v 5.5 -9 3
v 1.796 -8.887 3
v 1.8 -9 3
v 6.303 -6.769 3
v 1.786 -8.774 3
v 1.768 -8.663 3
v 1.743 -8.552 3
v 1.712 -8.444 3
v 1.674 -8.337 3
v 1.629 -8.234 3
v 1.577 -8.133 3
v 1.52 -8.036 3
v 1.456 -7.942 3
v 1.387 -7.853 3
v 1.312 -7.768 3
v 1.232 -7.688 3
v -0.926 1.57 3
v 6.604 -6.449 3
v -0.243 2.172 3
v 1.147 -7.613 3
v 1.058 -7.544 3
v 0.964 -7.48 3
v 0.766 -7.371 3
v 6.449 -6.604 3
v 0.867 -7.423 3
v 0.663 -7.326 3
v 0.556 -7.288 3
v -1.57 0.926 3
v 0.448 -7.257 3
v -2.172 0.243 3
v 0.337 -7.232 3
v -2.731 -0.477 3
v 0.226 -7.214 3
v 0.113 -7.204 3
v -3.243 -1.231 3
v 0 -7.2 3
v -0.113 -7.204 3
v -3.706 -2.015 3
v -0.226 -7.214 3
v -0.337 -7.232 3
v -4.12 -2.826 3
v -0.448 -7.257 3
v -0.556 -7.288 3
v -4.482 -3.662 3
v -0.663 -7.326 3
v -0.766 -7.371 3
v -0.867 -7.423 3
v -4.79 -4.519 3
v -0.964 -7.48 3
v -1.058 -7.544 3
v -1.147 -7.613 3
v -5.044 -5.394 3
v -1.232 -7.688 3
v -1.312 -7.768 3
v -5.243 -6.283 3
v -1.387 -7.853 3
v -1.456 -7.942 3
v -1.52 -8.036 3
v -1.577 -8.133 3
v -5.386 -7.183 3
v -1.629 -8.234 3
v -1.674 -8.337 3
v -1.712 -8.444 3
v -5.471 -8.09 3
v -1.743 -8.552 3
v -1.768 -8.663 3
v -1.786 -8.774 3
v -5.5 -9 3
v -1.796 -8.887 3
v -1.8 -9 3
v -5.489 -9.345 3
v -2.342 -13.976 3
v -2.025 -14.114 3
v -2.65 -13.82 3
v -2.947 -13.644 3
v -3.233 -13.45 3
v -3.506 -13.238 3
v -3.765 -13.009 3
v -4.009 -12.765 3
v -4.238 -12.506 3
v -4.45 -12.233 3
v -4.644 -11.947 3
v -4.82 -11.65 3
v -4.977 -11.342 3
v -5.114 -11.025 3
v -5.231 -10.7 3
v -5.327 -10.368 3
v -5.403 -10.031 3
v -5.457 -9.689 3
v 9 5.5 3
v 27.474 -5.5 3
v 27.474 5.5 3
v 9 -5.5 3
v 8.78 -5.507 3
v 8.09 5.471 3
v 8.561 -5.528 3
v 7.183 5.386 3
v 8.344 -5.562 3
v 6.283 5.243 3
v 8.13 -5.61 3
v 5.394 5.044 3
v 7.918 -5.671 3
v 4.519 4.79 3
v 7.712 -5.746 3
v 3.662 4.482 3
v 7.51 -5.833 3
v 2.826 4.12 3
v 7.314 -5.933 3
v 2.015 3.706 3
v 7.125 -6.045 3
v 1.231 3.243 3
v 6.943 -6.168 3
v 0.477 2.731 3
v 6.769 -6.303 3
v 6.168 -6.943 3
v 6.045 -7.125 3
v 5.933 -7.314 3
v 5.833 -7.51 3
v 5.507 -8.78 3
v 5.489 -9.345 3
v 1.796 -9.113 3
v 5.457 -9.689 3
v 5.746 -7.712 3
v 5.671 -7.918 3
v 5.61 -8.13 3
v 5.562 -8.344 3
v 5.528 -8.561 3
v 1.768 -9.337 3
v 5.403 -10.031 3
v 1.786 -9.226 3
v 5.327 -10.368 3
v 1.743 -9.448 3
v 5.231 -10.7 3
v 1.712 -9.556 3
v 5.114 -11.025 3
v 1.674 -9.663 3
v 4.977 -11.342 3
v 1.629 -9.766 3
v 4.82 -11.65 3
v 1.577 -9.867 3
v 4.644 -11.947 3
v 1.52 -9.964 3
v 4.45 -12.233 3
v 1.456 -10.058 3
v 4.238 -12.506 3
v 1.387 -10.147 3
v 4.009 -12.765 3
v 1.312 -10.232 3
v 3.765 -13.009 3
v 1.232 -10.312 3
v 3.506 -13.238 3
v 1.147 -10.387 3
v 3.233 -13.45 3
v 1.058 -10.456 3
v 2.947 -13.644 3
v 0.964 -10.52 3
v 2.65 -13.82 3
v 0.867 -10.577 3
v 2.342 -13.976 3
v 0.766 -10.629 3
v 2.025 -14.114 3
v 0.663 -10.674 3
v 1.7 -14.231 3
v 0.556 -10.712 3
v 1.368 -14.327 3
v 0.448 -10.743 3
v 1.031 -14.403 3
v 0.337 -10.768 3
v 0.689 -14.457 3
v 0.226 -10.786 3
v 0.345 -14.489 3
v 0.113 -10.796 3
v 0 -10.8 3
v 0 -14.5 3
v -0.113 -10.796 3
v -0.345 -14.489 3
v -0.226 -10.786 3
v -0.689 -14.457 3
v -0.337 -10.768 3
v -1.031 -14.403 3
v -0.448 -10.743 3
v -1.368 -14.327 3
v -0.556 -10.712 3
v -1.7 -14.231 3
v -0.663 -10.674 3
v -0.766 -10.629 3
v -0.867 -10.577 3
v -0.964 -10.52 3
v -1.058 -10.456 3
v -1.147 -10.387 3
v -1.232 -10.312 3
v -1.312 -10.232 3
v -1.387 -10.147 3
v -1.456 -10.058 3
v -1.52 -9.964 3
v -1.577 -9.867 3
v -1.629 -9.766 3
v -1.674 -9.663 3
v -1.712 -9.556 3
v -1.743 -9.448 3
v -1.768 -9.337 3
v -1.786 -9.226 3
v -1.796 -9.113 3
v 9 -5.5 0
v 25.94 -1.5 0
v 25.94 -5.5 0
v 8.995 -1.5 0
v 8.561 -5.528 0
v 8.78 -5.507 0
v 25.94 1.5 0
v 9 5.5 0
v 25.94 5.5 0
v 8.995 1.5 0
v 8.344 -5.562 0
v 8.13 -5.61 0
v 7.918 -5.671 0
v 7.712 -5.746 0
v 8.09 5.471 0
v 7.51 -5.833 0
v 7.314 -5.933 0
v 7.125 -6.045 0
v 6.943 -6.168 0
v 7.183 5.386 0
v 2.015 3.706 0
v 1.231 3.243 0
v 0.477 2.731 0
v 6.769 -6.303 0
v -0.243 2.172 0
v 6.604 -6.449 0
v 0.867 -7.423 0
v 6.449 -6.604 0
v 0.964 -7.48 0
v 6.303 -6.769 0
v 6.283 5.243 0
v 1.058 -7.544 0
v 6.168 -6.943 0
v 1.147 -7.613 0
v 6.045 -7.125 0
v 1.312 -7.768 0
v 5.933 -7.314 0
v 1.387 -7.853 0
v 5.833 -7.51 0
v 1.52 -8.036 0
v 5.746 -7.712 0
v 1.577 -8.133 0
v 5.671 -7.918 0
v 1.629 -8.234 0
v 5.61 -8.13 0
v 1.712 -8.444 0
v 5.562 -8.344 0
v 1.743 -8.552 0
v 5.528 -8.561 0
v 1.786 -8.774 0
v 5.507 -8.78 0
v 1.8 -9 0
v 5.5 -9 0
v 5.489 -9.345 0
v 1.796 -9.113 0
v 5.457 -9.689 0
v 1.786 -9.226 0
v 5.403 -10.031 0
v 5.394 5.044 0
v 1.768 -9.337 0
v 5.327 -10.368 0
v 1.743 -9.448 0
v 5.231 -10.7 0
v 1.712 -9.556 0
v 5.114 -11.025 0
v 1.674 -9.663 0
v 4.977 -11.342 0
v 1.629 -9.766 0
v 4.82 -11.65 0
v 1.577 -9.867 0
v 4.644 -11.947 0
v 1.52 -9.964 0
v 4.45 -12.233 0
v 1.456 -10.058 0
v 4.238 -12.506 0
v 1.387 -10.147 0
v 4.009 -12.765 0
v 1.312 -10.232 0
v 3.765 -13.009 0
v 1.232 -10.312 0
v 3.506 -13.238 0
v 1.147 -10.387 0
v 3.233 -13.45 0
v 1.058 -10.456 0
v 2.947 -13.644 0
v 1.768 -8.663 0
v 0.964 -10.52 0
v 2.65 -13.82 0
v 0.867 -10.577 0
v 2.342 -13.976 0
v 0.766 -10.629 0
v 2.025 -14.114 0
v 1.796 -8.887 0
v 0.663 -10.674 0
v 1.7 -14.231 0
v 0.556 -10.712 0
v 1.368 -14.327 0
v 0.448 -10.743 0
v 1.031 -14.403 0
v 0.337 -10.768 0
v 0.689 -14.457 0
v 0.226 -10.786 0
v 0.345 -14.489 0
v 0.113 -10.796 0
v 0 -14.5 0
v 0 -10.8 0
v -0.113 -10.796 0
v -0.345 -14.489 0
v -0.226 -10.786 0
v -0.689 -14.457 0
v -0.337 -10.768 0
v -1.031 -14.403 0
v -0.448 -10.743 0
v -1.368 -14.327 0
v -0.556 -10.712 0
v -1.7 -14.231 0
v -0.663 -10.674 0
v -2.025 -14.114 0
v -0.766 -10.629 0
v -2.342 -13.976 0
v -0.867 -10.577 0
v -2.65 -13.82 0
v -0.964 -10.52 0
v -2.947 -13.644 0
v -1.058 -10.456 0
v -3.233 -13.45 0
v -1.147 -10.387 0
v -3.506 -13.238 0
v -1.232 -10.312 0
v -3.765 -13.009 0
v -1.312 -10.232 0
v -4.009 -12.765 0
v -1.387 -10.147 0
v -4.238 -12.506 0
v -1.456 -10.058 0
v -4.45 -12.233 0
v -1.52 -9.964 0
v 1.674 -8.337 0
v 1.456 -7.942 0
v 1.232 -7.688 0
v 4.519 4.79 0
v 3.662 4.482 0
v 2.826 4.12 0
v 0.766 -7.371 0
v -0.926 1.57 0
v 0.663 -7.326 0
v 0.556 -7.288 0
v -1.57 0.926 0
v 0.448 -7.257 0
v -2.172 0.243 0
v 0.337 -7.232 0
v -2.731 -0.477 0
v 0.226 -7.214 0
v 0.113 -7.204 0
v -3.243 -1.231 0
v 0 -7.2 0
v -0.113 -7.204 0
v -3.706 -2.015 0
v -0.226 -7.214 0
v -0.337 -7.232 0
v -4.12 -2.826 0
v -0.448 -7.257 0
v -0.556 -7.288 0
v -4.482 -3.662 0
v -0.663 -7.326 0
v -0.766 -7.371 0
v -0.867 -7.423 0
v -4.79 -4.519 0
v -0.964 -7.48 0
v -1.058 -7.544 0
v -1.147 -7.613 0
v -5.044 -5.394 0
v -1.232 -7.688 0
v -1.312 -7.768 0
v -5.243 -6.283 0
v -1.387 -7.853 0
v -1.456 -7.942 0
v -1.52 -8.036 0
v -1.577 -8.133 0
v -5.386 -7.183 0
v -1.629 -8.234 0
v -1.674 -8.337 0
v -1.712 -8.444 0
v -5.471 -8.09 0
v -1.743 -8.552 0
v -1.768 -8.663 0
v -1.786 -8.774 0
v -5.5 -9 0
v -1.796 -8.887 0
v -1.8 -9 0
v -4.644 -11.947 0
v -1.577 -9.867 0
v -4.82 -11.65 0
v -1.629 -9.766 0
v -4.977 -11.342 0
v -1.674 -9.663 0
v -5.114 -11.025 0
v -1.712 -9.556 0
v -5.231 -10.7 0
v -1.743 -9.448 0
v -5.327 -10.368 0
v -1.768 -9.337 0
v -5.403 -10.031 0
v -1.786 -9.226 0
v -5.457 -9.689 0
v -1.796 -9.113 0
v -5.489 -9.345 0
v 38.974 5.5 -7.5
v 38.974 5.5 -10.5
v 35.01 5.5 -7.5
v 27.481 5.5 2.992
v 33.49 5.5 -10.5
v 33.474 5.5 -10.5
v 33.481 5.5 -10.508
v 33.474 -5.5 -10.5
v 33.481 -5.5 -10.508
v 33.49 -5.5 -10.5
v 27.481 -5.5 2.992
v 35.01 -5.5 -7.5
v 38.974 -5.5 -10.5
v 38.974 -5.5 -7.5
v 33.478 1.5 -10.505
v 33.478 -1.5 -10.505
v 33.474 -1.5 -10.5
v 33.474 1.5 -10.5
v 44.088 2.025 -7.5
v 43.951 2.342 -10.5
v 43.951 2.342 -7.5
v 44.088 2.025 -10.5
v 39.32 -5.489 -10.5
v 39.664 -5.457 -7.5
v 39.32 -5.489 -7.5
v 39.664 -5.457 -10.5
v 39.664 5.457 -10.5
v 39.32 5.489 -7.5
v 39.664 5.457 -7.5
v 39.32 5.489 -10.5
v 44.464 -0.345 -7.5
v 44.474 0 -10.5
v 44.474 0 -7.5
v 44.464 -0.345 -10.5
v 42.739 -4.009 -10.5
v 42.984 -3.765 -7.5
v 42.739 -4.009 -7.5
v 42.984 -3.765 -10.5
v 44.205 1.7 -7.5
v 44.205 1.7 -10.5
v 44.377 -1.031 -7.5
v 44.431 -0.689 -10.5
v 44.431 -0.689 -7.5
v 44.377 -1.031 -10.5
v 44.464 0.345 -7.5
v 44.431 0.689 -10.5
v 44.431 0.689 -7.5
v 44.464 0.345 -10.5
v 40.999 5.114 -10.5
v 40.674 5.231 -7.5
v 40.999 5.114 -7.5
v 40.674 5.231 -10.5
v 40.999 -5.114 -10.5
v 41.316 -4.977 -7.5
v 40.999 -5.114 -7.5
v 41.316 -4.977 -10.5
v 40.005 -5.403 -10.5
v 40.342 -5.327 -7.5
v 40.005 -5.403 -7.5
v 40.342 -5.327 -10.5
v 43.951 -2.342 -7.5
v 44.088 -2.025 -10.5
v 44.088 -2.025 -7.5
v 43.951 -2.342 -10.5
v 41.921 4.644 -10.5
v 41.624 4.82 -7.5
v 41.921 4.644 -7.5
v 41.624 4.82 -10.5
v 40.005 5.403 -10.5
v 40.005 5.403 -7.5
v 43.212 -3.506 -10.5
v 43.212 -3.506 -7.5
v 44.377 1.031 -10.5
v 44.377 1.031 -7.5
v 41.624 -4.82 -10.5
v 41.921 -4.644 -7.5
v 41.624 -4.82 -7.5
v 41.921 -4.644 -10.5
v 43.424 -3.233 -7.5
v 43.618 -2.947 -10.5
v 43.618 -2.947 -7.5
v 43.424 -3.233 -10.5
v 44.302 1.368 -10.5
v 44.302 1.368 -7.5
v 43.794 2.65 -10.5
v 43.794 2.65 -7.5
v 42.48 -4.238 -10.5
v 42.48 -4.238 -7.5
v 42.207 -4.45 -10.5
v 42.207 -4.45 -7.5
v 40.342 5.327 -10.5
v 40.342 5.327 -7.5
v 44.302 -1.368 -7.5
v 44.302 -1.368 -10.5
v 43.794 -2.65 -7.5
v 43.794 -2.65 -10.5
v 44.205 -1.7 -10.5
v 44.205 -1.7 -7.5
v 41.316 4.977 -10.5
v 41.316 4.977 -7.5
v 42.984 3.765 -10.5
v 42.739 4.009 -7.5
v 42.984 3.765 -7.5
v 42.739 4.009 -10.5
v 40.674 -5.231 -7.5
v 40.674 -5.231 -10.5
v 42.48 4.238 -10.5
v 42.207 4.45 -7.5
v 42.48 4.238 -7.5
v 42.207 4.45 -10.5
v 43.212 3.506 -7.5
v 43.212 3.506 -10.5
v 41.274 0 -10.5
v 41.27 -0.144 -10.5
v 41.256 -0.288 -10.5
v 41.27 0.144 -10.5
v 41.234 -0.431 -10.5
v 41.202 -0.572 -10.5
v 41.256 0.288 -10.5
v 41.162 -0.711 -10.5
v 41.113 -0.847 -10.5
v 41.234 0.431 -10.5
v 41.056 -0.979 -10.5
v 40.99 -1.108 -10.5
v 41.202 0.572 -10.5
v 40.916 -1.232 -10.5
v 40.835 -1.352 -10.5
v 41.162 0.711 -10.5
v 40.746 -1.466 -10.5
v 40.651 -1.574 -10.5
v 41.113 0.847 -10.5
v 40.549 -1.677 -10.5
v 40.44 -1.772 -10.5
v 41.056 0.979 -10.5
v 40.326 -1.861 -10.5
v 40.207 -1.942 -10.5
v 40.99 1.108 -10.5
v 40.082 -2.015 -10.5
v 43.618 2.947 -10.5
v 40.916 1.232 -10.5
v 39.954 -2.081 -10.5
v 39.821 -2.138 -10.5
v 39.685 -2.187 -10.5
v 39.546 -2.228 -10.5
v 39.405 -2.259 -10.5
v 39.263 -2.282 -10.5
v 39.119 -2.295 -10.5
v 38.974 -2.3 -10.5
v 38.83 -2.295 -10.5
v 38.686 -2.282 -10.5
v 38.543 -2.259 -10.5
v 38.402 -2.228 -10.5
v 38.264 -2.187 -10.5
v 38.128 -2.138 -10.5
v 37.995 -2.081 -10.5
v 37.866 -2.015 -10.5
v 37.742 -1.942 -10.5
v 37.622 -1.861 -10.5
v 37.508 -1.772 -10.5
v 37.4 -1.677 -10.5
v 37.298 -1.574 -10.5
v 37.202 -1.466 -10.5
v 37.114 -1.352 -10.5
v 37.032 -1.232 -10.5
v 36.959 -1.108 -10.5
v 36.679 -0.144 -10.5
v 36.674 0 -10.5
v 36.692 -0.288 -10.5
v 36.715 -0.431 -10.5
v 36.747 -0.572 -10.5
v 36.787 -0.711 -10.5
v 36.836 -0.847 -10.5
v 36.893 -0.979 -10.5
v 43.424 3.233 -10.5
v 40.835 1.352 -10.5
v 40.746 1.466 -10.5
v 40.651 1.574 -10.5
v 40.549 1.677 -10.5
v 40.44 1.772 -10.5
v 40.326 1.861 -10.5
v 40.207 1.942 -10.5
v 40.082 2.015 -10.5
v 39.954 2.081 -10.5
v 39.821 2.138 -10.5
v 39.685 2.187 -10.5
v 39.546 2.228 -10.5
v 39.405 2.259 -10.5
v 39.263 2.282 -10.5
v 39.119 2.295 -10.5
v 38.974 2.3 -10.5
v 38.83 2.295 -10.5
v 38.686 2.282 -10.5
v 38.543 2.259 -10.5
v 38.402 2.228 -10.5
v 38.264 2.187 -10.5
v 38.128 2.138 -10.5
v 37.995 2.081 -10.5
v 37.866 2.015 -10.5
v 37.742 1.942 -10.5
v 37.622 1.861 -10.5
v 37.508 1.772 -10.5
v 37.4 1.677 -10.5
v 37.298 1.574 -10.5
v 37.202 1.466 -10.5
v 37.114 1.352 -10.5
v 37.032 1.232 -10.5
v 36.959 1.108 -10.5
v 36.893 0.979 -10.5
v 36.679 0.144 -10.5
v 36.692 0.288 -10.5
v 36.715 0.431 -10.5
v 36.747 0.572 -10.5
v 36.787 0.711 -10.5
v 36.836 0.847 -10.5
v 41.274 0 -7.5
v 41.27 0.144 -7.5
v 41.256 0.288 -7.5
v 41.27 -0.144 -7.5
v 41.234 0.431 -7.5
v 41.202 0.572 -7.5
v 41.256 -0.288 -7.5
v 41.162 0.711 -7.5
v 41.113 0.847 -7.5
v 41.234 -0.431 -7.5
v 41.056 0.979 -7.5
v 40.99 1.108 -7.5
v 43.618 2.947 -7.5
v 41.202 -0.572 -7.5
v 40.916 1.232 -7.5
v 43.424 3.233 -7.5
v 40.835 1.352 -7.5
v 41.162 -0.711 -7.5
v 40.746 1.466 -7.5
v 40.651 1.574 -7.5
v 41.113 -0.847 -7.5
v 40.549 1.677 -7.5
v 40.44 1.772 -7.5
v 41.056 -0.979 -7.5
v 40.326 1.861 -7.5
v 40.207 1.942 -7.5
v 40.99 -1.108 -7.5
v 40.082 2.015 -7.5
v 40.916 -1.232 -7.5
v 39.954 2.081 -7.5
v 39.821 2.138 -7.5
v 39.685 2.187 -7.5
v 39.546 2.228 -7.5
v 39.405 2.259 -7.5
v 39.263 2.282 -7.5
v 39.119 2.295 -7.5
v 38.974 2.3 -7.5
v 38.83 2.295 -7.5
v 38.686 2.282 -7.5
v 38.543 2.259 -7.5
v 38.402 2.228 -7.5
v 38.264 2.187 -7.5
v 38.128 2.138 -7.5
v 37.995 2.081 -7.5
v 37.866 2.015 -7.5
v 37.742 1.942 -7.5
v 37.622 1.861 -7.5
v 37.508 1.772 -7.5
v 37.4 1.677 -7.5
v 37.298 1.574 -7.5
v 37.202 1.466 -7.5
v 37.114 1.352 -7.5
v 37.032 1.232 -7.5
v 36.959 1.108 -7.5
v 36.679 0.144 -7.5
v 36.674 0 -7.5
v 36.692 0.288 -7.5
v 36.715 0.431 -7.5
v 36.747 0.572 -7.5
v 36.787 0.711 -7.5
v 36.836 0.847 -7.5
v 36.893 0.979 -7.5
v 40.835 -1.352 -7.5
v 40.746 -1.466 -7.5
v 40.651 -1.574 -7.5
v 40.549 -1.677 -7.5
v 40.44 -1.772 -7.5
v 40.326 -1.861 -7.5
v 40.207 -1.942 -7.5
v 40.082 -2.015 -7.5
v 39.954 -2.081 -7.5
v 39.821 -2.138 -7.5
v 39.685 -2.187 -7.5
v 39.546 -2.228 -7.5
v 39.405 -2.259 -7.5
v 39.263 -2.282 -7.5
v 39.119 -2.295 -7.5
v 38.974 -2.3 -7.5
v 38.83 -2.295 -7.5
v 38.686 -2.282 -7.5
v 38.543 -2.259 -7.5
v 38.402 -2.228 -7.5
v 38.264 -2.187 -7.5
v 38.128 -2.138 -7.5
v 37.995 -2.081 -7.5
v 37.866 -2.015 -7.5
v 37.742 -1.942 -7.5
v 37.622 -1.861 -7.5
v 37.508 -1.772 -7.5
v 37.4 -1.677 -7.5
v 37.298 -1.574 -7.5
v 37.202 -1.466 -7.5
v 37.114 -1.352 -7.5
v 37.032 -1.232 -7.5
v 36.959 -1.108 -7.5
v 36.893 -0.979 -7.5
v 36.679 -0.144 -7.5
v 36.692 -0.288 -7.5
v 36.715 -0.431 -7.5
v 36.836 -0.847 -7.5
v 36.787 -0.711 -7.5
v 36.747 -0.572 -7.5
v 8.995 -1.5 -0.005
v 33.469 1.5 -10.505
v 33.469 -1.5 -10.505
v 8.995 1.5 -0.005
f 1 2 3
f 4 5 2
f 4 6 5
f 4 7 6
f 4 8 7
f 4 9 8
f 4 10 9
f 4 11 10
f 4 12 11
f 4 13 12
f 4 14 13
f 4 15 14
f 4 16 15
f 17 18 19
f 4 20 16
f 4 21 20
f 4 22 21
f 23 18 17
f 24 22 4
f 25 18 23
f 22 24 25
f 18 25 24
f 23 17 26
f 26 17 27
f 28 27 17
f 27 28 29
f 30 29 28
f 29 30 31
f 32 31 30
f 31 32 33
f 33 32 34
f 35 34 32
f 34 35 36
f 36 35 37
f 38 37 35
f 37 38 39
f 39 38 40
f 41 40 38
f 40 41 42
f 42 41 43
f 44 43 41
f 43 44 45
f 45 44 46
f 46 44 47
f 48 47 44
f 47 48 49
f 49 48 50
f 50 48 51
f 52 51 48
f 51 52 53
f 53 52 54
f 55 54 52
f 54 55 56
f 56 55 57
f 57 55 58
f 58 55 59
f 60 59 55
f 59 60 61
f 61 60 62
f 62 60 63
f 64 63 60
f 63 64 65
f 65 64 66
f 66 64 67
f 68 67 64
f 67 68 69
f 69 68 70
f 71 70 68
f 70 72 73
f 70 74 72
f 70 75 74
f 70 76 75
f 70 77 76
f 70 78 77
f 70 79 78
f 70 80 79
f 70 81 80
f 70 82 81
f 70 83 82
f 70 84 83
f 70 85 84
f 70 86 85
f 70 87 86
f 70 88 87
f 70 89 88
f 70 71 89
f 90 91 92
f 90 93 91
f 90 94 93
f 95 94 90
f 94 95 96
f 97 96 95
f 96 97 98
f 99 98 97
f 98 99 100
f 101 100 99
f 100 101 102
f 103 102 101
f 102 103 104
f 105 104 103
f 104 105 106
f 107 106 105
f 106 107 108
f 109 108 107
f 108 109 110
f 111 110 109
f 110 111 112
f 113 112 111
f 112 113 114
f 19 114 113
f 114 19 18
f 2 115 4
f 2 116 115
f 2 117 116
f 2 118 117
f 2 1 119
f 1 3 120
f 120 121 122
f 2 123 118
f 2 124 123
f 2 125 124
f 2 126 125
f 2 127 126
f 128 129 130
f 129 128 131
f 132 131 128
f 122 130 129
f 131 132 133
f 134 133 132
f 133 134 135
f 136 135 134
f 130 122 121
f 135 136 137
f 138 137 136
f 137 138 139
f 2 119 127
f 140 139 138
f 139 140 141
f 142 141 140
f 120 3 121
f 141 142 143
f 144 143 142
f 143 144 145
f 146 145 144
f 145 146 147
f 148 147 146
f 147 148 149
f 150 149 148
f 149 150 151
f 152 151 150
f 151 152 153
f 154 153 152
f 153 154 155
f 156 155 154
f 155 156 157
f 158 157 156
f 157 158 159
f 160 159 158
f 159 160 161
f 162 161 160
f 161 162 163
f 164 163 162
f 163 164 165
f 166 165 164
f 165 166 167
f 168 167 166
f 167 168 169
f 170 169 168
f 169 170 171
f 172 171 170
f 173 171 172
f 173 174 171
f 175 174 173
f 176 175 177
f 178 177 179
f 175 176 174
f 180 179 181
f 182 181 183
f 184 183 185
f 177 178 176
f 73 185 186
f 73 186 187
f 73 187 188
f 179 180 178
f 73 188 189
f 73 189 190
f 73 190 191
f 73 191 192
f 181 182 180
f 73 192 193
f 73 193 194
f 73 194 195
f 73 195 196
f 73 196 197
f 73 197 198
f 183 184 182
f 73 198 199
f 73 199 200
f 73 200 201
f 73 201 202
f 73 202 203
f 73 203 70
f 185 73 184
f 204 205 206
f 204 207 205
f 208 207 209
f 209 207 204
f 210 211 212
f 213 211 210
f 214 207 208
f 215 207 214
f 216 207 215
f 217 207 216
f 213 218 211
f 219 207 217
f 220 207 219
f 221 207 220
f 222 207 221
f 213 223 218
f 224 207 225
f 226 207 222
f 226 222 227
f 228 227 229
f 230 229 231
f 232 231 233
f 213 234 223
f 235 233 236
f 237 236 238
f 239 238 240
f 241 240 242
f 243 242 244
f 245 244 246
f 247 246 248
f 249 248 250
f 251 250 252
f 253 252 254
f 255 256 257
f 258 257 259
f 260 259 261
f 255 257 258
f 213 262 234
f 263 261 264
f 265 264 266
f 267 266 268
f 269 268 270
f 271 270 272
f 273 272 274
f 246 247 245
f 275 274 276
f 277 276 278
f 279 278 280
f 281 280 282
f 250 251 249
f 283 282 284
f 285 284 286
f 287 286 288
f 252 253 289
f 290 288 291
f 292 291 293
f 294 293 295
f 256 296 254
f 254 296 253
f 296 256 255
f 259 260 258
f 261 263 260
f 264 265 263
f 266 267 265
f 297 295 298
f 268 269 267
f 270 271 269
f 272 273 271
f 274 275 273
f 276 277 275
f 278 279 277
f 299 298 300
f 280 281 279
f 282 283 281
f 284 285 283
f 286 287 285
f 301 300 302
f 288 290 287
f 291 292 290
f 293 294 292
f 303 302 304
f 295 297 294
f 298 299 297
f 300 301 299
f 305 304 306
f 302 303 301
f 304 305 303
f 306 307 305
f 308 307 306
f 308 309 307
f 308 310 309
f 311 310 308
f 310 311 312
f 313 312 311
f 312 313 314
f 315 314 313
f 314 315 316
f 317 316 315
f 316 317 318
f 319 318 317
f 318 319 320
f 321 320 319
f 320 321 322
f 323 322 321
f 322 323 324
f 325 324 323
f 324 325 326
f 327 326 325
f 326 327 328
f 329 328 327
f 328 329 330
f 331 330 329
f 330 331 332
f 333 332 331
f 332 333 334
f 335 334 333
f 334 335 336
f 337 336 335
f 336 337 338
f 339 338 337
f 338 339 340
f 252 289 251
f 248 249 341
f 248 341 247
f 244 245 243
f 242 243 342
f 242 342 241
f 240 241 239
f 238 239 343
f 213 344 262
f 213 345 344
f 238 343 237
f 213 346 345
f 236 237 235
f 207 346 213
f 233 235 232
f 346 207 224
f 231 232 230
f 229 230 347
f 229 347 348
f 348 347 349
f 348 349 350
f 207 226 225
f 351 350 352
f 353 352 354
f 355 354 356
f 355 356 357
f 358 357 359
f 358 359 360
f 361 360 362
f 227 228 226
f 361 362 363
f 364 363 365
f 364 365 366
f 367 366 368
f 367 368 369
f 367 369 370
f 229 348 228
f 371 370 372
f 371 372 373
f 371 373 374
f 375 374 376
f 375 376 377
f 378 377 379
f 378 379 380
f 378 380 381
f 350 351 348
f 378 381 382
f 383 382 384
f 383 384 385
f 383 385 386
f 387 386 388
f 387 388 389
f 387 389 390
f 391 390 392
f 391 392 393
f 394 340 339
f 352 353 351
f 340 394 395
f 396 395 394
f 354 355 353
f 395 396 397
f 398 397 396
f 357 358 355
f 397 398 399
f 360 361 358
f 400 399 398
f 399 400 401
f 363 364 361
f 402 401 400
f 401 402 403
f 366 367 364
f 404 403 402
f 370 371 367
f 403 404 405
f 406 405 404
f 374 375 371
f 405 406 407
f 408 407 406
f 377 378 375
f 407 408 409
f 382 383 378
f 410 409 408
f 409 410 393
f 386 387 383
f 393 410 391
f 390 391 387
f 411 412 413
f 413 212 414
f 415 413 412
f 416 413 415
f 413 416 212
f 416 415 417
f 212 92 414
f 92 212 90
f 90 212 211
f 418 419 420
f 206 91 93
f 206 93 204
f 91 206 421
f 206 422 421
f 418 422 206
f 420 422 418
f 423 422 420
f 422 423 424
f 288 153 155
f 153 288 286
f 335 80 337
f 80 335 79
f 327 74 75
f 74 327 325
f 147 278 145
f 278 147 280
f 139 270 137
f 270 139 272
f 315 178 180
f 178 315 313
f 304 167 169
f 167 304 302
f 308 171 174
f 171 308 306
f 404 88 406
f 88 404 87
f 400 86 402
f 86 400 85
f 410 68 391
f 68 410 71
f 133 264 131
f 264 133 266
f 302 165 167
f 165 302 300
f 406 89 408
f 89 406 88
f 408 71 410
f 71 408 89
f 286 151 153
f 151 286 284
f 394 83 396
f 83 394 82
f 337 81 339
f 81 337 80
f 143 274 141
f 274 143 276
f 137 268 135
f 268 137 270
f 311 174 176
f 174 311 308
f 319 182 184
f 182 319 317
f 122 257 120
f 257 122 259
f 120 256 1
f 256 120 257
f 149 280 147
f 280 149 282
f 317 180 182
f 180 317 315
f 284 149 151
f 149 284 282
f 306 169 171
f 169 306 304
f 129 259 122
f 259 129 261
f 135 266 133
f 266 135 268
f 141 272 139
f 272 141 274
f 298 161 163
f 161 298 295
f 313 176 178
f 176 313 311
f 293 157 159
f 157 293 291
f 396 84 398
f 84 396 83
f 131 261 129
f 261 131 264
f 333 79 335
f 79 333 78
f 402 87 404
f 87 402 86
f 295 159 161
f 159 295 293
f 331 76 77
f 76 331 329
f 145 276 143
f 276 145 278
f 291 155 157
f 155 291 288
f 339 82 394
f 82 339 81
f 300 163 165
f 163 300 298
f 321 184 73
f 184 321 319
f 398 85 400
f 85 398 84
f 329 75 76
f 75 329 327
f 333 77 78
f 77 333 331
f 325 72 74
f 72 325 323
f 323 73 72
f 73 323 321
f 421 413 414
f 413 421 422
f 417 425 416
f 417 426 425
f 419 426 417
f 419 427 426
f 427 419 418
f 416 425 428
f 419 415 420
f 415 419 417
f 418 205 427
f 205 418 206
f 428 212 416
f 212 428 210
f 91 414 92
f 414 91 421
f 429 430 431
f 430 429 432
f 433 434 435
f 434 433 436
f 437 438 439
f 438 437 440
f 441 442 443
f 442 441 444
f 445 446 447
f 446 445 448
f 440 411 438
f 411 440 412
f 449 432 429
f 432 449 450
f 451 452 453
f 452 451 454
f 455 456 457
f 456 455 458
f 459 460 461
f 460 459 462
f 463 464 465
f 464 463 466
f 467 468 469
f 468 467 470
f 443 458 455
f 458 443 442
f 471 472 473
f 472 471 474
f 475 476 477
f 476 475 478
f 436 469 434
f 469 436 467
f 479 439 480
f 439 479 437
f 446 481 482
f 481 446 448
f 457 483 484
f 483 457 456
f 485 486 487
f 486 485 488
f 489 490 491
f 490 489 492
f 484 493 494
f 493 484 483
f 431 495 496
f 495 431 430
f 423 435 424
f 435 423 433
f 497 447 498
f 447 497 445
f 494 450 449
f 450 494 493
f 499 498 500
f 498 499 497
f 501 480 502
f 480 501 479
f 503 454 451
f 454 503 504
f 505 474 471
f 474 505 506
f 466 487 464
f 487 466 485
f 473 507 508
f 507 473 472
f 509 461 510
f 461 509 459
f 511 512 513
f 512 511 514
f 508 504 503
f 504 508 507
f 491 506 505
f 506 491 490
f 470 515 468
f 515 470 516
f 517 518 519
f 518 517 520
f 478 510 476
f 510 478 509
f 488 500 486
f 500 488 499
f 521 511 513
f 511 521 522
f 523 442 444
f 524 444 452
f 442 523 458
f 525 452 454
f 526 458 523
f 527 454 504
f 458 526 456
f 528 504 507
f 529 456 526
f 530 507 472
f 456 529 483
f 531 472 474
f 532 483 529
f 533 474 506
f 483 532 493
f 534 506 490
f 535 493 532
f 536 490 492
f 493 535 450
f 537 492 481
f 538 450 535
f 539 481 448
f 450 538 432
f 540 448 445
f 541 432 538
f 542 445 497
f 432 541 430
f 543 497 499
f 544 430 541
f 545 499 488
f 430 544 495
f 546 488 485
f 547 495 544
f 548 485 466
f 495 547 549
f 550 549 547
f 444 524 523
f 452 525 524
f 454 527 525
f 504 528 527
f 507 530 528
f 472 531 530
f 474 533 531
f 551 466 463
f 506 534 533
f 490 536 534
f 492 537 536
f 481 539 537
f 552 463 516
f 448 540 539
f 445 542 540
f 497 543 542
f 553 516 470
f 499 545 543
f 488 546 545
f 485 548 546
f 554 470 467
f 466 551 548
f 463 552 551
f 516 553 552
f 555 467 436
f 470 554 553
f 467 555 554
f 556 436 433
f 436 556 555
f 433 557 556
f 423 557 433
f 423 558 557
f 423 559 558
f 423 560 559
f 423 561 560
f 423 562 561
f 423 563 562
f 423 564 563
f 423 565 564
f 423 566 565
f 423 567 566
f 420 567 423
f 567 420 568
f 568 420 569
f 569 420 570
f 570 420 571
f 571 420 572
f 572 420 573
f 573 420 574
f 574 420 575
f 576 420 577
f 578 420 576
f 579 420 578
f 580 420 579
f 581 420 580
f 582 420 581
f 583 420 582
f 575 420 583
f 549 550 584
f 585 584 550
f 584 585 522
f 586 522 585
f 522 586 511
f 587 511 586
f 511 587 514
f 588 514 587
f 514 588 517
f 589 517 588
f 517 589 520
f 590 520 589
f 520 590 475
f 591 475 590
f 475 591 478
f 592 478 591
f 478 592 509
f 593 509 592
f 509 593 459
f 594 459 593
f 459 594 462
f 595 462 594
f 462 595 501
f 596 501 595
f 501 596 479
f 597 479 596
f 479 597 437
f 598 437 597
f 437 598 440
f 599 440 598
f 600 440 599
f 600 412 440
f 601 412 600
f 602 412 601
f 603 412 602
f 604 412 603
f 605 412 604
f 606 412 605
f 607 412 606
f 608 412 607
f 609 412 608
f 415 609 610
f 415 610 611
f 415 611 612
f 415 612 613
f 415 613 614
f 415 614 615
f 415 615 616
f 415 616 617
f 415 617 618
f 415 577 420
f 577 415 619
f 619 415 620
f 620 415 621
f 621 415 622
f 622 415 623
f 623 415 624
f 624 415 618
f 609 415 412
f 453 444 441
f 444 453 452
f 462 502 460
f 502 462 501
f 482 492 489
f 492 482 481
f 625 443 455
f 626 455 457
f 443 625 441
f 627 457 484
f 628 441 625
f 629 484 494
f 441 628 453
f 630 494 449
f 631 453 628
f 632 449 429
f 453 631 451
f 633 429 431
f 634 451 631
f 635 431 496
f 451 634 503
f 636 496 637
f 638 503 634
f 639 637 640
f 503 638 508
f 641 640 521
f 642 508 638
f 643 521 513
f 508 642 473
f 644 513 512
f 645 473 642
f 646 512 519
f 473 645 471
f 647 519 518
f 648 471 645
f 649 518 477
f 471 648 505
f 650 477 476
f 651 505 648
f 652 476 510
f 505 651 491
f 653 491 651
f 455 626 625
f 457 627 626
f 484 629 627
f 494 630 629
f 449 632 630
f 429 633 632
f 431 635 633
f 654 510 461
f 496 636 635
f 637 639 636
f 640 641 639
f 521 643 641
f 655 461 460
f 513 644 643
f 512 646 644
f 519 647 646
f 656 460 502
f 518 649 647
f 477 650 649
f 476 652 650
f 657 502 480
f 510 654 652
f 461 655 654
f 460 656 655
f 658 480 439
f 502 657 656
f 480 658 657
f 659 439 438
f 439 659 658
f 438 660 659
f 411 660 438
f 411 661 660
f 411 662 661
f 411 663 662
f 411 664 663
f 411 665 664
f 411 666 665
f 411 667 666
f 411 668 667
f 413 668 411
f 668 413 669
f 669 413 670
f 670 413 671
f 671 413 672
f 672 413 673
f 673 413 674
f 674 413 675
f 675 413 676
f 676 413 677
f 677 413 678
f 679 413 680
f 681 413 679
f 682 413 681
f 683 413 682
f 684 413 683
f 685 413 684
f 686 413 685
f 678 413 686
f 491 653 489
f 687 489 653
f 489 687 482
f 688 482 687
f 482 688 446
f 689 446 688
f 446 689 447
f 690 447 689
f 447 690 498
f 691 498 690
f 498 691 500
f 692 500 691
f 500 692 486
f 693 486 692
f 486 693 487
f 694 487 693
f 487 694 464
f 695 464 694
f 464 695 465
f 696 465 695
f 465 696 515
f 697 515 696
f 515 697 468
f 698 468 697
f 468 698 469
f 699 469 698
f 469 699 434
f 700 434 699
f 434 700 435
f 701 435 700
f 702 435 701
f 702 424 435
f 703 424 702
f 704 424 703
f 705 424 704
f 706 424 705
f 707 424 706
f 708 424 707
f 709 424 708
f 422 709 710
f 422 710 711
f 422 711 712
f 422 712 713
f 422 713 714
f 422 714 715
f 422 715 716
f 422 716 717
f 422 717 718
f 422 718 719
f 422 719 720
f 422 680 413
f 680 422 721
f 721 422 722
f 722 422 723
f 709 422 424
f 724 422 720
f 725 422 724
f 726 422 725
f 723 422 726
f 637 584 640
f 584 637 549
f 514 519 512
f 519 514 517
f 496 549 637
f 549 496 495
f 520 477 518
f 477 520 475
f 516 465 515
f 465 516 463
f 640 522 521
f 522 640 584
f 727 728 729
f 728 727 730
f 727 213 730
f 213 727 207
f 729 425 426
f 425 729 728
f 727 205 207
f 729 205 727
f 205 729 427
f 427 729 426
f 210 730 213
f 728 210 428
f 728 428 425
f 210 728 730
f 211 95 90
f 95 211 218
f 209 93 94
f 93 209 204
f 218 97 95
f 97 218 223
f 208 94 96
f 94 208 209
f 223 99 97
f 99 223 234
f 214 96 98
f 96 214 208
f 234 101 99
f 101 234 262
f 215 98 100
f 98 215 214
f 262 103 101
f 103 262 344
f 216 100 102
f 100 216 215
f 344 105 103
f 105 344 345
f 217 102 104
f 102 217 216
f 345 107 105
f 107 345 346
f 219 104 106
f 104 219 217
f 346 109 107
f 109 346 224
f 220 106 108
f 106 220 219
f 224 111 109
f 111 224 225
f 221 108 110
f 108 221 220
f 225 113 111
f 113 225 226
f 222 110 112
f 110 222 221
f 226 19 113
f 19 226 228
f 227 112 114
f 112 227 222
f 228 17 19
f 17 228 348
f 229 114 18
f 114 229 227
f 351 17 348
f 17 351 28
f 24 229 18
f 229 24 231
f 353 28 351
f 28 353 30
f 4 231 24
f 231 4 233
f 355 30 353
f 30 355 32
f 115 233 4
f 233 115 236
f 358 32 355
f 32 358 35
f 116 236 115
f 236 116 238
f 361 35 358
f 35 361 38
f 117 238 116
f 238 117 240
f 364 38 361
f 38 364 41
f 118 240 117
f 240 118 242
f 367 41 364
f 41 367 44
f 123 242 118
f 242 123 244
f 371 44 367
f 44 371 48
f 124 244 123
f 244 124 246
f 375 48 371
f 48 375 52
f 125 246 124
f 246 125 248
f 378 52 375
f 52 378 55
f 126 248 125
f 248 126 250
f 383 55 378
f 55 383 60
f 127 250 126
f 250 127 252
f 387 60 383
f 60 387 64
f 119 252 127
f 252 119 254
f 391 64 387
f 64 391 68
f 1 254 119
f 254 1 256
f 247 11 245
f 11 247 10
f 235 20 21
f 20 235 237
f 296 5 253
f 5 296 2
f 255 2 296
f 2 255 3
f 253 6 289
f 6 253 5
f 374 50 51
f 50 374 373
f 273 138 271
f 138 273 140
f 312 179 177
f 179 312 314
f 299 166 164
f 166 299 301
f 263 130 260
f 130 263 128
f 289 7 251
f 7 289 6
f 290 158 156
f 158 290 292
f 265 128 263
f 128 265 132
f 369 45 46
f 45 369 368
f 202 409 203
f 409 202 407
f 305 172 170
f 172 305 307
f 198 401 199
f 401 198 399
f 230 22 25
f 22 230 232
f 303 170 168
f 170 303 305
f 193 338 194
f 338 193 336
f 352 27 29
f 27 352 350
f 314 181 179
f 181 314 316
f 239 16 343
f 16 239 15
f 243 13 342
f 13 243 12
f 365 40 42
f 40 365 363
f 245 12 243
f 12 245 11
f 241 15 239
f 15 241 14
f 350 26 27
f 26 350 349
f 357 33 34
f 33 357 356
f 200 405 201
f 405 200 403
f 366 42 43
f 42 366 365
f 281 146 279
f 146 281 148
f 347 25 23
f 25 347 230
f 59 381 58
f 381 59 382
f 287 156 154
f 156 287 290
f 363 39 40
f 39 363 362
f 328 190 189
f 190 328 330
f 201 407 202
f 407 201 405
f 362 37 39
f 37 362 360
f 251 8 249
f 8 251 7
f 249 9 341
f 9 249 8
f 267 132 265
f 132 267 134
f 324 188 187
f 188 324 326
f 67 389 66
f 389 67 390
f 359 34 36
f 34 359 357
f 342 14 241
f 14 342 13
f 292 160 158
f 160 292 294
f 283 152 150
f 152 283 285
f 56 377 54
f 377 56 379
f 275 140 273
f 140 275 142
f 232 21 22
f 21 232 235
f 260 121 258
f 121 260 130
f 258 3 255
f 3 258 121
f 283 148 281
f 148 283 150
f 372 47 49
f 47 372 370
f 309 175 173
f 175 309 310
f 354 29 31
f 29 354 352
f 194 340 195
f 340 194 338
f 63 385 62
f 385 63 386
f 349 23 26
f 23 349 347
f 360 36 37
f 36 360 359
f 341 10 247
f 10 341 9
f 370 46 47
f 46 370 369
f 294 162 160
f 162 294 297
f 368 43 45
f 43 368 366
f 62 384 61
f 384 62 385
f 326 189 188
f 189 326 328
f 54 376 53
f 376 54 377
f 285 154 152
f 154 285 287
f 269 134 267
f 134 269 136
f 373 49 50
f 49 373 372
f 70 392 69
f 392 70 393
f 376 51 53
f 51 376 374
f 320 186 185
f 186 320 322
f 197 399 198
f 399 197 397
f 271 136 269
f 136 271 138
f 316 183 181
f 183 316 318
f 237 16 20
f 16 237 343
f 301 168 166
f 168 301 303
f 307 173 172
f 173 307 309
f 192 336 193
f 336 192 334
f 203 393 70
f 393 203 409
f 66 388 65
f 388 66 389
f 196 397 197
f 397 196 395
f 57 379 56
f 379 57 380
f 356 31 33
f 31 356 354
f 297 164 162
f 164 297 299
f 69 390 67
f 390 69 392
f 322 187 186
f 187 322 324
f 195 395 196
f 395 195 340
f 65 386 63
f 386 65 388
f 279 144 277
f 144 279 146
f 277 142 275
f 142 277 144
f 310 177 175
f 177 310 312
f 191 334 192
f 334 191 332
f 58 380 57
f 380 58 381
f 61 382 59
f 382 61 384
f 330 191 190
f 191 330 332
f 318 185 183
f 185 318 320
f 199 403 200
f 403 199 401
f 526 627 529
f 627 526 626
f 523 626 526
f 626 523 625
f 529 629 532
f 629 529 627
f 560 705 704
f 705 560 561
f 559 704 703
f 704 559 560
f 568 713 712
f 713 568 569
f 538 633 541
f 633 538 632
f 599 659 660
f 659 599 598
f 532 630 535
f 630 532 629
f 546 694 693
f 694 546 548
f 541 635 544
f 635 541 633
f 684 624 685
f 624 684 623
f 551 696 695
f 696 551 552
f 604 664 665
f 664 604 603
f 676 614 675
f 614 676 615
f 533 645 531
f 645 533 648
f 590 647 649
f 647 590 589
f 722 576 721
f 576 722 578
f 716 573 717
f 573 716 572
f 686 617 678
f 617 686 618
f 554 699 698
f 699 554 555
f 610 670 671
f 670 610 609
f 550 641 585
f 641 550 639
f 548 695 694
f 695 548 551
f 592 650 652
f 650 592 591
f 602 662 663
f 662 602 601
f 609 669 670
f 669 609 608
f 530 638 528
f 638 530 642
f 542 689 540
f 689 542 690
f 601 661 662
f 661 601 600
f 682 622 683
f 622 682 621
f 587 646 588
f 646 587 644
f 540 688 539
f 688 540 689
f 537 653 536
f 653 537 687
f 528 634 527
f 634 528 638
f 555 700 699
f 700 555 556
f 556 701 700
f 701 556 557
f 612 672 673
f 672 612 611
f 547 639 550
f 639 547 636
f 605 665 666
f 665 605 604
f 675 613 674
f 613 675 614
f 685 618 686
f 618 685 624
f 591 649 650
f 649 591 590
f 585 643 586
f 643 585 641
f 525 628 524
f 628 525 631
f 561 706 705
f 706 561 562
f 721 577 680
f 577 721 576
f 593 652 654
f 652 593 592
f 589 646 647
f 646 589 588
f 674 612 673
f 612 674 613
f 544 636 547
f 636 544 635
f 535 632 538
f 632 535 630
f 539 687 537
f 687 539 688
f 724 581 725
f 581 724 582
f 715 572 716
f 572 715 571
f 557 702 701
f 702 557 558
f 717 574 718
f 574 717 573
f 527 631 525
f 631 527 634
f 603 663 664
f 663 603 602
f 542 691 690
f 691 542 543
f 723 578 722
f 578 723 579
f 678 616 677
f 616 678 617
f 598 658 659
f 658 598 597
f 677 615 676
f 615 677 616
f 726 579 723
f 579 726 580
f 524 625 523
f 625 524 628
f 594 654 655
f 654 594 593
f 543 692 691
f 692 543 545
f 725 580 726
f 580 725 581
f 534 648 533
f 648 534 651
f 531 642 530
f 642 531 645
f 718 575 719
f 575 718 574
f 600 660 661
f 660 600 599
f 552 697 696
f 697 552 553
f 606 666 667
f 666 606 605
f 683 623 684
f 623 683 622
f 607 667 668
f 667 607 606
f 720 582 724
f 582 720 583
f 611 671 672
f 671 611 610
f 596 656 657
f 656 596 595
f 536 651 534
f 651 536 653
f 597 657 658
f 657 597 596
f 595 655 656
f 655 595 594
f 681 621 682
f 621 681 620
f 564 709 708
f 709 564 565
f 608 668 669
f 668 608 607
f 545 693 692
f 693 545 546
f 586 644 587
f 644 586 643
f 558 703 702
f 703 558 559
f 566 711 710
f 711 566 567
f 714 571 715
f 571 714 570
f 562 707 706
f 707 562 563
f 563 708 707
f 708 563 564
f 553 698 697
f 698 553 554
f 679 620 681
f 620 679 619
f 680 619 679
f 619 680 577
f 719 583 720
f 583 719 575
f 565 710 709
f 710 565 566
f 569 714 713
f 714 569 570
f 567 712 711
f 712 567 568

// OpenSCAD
length = 40;
size = 11;
th = 3;
hole = 2.3;
servo_hole = 1.8;

turn = 9;
slope = 6;
height = 7.5;

small = 0.01;

angle = atan(height/slope);
margen = sqrt(pow(length, 2) - pow(turn, 2)); // <= len^2 = turn^2 + margen^2

$fn = 100;
difference(){
    union(){
        translate([turn, -size/2, 0]) cube([margen - size/2 - slope - turn, size, th]);
        translate([0, -turn, 0]) cylinder(th, size/2, size/2);
        translate([margen - size/2, 0, 0]) hull(){
            translate([-slope, -size/2, th]) rotate([0, angle, 0]) mirror([0, 0, 1]) cube([small, size, th]);
            translate([0, -size/2, -th - height]) rotate([0, angle, 0]) cube([small, size, th]);
        }
        hull(){
            translate([margen - size/2, -size/2, -th - height]) cube([small, size, th]);
            translate([margen, 0, -th - height]) cylinder(th, size/2, size/2);
        }
        translate([turn, 0, 0]) hull(){
            cube([small, th, small], center=true);
            translate([margen - size/2 - slope - turn, 0, 0]) cube([small, th, small], center=true);
            translate([margen - size/2 - turn, 0, -th - height]) cube([small, th, small], center=true);
        }
        translate([turn, -turn, 0]) rotate([0, 0, 90]) rotate_extrude(angle=90) translate([turn - size/2, 0, 0]) square([size, th]);
    }
    translate([0, -turn, 0]) cylinder(th, servo_hole, servo_hole);
    translate([margen, 0, -th - height]) cylinder(th, hole, hole);
}
